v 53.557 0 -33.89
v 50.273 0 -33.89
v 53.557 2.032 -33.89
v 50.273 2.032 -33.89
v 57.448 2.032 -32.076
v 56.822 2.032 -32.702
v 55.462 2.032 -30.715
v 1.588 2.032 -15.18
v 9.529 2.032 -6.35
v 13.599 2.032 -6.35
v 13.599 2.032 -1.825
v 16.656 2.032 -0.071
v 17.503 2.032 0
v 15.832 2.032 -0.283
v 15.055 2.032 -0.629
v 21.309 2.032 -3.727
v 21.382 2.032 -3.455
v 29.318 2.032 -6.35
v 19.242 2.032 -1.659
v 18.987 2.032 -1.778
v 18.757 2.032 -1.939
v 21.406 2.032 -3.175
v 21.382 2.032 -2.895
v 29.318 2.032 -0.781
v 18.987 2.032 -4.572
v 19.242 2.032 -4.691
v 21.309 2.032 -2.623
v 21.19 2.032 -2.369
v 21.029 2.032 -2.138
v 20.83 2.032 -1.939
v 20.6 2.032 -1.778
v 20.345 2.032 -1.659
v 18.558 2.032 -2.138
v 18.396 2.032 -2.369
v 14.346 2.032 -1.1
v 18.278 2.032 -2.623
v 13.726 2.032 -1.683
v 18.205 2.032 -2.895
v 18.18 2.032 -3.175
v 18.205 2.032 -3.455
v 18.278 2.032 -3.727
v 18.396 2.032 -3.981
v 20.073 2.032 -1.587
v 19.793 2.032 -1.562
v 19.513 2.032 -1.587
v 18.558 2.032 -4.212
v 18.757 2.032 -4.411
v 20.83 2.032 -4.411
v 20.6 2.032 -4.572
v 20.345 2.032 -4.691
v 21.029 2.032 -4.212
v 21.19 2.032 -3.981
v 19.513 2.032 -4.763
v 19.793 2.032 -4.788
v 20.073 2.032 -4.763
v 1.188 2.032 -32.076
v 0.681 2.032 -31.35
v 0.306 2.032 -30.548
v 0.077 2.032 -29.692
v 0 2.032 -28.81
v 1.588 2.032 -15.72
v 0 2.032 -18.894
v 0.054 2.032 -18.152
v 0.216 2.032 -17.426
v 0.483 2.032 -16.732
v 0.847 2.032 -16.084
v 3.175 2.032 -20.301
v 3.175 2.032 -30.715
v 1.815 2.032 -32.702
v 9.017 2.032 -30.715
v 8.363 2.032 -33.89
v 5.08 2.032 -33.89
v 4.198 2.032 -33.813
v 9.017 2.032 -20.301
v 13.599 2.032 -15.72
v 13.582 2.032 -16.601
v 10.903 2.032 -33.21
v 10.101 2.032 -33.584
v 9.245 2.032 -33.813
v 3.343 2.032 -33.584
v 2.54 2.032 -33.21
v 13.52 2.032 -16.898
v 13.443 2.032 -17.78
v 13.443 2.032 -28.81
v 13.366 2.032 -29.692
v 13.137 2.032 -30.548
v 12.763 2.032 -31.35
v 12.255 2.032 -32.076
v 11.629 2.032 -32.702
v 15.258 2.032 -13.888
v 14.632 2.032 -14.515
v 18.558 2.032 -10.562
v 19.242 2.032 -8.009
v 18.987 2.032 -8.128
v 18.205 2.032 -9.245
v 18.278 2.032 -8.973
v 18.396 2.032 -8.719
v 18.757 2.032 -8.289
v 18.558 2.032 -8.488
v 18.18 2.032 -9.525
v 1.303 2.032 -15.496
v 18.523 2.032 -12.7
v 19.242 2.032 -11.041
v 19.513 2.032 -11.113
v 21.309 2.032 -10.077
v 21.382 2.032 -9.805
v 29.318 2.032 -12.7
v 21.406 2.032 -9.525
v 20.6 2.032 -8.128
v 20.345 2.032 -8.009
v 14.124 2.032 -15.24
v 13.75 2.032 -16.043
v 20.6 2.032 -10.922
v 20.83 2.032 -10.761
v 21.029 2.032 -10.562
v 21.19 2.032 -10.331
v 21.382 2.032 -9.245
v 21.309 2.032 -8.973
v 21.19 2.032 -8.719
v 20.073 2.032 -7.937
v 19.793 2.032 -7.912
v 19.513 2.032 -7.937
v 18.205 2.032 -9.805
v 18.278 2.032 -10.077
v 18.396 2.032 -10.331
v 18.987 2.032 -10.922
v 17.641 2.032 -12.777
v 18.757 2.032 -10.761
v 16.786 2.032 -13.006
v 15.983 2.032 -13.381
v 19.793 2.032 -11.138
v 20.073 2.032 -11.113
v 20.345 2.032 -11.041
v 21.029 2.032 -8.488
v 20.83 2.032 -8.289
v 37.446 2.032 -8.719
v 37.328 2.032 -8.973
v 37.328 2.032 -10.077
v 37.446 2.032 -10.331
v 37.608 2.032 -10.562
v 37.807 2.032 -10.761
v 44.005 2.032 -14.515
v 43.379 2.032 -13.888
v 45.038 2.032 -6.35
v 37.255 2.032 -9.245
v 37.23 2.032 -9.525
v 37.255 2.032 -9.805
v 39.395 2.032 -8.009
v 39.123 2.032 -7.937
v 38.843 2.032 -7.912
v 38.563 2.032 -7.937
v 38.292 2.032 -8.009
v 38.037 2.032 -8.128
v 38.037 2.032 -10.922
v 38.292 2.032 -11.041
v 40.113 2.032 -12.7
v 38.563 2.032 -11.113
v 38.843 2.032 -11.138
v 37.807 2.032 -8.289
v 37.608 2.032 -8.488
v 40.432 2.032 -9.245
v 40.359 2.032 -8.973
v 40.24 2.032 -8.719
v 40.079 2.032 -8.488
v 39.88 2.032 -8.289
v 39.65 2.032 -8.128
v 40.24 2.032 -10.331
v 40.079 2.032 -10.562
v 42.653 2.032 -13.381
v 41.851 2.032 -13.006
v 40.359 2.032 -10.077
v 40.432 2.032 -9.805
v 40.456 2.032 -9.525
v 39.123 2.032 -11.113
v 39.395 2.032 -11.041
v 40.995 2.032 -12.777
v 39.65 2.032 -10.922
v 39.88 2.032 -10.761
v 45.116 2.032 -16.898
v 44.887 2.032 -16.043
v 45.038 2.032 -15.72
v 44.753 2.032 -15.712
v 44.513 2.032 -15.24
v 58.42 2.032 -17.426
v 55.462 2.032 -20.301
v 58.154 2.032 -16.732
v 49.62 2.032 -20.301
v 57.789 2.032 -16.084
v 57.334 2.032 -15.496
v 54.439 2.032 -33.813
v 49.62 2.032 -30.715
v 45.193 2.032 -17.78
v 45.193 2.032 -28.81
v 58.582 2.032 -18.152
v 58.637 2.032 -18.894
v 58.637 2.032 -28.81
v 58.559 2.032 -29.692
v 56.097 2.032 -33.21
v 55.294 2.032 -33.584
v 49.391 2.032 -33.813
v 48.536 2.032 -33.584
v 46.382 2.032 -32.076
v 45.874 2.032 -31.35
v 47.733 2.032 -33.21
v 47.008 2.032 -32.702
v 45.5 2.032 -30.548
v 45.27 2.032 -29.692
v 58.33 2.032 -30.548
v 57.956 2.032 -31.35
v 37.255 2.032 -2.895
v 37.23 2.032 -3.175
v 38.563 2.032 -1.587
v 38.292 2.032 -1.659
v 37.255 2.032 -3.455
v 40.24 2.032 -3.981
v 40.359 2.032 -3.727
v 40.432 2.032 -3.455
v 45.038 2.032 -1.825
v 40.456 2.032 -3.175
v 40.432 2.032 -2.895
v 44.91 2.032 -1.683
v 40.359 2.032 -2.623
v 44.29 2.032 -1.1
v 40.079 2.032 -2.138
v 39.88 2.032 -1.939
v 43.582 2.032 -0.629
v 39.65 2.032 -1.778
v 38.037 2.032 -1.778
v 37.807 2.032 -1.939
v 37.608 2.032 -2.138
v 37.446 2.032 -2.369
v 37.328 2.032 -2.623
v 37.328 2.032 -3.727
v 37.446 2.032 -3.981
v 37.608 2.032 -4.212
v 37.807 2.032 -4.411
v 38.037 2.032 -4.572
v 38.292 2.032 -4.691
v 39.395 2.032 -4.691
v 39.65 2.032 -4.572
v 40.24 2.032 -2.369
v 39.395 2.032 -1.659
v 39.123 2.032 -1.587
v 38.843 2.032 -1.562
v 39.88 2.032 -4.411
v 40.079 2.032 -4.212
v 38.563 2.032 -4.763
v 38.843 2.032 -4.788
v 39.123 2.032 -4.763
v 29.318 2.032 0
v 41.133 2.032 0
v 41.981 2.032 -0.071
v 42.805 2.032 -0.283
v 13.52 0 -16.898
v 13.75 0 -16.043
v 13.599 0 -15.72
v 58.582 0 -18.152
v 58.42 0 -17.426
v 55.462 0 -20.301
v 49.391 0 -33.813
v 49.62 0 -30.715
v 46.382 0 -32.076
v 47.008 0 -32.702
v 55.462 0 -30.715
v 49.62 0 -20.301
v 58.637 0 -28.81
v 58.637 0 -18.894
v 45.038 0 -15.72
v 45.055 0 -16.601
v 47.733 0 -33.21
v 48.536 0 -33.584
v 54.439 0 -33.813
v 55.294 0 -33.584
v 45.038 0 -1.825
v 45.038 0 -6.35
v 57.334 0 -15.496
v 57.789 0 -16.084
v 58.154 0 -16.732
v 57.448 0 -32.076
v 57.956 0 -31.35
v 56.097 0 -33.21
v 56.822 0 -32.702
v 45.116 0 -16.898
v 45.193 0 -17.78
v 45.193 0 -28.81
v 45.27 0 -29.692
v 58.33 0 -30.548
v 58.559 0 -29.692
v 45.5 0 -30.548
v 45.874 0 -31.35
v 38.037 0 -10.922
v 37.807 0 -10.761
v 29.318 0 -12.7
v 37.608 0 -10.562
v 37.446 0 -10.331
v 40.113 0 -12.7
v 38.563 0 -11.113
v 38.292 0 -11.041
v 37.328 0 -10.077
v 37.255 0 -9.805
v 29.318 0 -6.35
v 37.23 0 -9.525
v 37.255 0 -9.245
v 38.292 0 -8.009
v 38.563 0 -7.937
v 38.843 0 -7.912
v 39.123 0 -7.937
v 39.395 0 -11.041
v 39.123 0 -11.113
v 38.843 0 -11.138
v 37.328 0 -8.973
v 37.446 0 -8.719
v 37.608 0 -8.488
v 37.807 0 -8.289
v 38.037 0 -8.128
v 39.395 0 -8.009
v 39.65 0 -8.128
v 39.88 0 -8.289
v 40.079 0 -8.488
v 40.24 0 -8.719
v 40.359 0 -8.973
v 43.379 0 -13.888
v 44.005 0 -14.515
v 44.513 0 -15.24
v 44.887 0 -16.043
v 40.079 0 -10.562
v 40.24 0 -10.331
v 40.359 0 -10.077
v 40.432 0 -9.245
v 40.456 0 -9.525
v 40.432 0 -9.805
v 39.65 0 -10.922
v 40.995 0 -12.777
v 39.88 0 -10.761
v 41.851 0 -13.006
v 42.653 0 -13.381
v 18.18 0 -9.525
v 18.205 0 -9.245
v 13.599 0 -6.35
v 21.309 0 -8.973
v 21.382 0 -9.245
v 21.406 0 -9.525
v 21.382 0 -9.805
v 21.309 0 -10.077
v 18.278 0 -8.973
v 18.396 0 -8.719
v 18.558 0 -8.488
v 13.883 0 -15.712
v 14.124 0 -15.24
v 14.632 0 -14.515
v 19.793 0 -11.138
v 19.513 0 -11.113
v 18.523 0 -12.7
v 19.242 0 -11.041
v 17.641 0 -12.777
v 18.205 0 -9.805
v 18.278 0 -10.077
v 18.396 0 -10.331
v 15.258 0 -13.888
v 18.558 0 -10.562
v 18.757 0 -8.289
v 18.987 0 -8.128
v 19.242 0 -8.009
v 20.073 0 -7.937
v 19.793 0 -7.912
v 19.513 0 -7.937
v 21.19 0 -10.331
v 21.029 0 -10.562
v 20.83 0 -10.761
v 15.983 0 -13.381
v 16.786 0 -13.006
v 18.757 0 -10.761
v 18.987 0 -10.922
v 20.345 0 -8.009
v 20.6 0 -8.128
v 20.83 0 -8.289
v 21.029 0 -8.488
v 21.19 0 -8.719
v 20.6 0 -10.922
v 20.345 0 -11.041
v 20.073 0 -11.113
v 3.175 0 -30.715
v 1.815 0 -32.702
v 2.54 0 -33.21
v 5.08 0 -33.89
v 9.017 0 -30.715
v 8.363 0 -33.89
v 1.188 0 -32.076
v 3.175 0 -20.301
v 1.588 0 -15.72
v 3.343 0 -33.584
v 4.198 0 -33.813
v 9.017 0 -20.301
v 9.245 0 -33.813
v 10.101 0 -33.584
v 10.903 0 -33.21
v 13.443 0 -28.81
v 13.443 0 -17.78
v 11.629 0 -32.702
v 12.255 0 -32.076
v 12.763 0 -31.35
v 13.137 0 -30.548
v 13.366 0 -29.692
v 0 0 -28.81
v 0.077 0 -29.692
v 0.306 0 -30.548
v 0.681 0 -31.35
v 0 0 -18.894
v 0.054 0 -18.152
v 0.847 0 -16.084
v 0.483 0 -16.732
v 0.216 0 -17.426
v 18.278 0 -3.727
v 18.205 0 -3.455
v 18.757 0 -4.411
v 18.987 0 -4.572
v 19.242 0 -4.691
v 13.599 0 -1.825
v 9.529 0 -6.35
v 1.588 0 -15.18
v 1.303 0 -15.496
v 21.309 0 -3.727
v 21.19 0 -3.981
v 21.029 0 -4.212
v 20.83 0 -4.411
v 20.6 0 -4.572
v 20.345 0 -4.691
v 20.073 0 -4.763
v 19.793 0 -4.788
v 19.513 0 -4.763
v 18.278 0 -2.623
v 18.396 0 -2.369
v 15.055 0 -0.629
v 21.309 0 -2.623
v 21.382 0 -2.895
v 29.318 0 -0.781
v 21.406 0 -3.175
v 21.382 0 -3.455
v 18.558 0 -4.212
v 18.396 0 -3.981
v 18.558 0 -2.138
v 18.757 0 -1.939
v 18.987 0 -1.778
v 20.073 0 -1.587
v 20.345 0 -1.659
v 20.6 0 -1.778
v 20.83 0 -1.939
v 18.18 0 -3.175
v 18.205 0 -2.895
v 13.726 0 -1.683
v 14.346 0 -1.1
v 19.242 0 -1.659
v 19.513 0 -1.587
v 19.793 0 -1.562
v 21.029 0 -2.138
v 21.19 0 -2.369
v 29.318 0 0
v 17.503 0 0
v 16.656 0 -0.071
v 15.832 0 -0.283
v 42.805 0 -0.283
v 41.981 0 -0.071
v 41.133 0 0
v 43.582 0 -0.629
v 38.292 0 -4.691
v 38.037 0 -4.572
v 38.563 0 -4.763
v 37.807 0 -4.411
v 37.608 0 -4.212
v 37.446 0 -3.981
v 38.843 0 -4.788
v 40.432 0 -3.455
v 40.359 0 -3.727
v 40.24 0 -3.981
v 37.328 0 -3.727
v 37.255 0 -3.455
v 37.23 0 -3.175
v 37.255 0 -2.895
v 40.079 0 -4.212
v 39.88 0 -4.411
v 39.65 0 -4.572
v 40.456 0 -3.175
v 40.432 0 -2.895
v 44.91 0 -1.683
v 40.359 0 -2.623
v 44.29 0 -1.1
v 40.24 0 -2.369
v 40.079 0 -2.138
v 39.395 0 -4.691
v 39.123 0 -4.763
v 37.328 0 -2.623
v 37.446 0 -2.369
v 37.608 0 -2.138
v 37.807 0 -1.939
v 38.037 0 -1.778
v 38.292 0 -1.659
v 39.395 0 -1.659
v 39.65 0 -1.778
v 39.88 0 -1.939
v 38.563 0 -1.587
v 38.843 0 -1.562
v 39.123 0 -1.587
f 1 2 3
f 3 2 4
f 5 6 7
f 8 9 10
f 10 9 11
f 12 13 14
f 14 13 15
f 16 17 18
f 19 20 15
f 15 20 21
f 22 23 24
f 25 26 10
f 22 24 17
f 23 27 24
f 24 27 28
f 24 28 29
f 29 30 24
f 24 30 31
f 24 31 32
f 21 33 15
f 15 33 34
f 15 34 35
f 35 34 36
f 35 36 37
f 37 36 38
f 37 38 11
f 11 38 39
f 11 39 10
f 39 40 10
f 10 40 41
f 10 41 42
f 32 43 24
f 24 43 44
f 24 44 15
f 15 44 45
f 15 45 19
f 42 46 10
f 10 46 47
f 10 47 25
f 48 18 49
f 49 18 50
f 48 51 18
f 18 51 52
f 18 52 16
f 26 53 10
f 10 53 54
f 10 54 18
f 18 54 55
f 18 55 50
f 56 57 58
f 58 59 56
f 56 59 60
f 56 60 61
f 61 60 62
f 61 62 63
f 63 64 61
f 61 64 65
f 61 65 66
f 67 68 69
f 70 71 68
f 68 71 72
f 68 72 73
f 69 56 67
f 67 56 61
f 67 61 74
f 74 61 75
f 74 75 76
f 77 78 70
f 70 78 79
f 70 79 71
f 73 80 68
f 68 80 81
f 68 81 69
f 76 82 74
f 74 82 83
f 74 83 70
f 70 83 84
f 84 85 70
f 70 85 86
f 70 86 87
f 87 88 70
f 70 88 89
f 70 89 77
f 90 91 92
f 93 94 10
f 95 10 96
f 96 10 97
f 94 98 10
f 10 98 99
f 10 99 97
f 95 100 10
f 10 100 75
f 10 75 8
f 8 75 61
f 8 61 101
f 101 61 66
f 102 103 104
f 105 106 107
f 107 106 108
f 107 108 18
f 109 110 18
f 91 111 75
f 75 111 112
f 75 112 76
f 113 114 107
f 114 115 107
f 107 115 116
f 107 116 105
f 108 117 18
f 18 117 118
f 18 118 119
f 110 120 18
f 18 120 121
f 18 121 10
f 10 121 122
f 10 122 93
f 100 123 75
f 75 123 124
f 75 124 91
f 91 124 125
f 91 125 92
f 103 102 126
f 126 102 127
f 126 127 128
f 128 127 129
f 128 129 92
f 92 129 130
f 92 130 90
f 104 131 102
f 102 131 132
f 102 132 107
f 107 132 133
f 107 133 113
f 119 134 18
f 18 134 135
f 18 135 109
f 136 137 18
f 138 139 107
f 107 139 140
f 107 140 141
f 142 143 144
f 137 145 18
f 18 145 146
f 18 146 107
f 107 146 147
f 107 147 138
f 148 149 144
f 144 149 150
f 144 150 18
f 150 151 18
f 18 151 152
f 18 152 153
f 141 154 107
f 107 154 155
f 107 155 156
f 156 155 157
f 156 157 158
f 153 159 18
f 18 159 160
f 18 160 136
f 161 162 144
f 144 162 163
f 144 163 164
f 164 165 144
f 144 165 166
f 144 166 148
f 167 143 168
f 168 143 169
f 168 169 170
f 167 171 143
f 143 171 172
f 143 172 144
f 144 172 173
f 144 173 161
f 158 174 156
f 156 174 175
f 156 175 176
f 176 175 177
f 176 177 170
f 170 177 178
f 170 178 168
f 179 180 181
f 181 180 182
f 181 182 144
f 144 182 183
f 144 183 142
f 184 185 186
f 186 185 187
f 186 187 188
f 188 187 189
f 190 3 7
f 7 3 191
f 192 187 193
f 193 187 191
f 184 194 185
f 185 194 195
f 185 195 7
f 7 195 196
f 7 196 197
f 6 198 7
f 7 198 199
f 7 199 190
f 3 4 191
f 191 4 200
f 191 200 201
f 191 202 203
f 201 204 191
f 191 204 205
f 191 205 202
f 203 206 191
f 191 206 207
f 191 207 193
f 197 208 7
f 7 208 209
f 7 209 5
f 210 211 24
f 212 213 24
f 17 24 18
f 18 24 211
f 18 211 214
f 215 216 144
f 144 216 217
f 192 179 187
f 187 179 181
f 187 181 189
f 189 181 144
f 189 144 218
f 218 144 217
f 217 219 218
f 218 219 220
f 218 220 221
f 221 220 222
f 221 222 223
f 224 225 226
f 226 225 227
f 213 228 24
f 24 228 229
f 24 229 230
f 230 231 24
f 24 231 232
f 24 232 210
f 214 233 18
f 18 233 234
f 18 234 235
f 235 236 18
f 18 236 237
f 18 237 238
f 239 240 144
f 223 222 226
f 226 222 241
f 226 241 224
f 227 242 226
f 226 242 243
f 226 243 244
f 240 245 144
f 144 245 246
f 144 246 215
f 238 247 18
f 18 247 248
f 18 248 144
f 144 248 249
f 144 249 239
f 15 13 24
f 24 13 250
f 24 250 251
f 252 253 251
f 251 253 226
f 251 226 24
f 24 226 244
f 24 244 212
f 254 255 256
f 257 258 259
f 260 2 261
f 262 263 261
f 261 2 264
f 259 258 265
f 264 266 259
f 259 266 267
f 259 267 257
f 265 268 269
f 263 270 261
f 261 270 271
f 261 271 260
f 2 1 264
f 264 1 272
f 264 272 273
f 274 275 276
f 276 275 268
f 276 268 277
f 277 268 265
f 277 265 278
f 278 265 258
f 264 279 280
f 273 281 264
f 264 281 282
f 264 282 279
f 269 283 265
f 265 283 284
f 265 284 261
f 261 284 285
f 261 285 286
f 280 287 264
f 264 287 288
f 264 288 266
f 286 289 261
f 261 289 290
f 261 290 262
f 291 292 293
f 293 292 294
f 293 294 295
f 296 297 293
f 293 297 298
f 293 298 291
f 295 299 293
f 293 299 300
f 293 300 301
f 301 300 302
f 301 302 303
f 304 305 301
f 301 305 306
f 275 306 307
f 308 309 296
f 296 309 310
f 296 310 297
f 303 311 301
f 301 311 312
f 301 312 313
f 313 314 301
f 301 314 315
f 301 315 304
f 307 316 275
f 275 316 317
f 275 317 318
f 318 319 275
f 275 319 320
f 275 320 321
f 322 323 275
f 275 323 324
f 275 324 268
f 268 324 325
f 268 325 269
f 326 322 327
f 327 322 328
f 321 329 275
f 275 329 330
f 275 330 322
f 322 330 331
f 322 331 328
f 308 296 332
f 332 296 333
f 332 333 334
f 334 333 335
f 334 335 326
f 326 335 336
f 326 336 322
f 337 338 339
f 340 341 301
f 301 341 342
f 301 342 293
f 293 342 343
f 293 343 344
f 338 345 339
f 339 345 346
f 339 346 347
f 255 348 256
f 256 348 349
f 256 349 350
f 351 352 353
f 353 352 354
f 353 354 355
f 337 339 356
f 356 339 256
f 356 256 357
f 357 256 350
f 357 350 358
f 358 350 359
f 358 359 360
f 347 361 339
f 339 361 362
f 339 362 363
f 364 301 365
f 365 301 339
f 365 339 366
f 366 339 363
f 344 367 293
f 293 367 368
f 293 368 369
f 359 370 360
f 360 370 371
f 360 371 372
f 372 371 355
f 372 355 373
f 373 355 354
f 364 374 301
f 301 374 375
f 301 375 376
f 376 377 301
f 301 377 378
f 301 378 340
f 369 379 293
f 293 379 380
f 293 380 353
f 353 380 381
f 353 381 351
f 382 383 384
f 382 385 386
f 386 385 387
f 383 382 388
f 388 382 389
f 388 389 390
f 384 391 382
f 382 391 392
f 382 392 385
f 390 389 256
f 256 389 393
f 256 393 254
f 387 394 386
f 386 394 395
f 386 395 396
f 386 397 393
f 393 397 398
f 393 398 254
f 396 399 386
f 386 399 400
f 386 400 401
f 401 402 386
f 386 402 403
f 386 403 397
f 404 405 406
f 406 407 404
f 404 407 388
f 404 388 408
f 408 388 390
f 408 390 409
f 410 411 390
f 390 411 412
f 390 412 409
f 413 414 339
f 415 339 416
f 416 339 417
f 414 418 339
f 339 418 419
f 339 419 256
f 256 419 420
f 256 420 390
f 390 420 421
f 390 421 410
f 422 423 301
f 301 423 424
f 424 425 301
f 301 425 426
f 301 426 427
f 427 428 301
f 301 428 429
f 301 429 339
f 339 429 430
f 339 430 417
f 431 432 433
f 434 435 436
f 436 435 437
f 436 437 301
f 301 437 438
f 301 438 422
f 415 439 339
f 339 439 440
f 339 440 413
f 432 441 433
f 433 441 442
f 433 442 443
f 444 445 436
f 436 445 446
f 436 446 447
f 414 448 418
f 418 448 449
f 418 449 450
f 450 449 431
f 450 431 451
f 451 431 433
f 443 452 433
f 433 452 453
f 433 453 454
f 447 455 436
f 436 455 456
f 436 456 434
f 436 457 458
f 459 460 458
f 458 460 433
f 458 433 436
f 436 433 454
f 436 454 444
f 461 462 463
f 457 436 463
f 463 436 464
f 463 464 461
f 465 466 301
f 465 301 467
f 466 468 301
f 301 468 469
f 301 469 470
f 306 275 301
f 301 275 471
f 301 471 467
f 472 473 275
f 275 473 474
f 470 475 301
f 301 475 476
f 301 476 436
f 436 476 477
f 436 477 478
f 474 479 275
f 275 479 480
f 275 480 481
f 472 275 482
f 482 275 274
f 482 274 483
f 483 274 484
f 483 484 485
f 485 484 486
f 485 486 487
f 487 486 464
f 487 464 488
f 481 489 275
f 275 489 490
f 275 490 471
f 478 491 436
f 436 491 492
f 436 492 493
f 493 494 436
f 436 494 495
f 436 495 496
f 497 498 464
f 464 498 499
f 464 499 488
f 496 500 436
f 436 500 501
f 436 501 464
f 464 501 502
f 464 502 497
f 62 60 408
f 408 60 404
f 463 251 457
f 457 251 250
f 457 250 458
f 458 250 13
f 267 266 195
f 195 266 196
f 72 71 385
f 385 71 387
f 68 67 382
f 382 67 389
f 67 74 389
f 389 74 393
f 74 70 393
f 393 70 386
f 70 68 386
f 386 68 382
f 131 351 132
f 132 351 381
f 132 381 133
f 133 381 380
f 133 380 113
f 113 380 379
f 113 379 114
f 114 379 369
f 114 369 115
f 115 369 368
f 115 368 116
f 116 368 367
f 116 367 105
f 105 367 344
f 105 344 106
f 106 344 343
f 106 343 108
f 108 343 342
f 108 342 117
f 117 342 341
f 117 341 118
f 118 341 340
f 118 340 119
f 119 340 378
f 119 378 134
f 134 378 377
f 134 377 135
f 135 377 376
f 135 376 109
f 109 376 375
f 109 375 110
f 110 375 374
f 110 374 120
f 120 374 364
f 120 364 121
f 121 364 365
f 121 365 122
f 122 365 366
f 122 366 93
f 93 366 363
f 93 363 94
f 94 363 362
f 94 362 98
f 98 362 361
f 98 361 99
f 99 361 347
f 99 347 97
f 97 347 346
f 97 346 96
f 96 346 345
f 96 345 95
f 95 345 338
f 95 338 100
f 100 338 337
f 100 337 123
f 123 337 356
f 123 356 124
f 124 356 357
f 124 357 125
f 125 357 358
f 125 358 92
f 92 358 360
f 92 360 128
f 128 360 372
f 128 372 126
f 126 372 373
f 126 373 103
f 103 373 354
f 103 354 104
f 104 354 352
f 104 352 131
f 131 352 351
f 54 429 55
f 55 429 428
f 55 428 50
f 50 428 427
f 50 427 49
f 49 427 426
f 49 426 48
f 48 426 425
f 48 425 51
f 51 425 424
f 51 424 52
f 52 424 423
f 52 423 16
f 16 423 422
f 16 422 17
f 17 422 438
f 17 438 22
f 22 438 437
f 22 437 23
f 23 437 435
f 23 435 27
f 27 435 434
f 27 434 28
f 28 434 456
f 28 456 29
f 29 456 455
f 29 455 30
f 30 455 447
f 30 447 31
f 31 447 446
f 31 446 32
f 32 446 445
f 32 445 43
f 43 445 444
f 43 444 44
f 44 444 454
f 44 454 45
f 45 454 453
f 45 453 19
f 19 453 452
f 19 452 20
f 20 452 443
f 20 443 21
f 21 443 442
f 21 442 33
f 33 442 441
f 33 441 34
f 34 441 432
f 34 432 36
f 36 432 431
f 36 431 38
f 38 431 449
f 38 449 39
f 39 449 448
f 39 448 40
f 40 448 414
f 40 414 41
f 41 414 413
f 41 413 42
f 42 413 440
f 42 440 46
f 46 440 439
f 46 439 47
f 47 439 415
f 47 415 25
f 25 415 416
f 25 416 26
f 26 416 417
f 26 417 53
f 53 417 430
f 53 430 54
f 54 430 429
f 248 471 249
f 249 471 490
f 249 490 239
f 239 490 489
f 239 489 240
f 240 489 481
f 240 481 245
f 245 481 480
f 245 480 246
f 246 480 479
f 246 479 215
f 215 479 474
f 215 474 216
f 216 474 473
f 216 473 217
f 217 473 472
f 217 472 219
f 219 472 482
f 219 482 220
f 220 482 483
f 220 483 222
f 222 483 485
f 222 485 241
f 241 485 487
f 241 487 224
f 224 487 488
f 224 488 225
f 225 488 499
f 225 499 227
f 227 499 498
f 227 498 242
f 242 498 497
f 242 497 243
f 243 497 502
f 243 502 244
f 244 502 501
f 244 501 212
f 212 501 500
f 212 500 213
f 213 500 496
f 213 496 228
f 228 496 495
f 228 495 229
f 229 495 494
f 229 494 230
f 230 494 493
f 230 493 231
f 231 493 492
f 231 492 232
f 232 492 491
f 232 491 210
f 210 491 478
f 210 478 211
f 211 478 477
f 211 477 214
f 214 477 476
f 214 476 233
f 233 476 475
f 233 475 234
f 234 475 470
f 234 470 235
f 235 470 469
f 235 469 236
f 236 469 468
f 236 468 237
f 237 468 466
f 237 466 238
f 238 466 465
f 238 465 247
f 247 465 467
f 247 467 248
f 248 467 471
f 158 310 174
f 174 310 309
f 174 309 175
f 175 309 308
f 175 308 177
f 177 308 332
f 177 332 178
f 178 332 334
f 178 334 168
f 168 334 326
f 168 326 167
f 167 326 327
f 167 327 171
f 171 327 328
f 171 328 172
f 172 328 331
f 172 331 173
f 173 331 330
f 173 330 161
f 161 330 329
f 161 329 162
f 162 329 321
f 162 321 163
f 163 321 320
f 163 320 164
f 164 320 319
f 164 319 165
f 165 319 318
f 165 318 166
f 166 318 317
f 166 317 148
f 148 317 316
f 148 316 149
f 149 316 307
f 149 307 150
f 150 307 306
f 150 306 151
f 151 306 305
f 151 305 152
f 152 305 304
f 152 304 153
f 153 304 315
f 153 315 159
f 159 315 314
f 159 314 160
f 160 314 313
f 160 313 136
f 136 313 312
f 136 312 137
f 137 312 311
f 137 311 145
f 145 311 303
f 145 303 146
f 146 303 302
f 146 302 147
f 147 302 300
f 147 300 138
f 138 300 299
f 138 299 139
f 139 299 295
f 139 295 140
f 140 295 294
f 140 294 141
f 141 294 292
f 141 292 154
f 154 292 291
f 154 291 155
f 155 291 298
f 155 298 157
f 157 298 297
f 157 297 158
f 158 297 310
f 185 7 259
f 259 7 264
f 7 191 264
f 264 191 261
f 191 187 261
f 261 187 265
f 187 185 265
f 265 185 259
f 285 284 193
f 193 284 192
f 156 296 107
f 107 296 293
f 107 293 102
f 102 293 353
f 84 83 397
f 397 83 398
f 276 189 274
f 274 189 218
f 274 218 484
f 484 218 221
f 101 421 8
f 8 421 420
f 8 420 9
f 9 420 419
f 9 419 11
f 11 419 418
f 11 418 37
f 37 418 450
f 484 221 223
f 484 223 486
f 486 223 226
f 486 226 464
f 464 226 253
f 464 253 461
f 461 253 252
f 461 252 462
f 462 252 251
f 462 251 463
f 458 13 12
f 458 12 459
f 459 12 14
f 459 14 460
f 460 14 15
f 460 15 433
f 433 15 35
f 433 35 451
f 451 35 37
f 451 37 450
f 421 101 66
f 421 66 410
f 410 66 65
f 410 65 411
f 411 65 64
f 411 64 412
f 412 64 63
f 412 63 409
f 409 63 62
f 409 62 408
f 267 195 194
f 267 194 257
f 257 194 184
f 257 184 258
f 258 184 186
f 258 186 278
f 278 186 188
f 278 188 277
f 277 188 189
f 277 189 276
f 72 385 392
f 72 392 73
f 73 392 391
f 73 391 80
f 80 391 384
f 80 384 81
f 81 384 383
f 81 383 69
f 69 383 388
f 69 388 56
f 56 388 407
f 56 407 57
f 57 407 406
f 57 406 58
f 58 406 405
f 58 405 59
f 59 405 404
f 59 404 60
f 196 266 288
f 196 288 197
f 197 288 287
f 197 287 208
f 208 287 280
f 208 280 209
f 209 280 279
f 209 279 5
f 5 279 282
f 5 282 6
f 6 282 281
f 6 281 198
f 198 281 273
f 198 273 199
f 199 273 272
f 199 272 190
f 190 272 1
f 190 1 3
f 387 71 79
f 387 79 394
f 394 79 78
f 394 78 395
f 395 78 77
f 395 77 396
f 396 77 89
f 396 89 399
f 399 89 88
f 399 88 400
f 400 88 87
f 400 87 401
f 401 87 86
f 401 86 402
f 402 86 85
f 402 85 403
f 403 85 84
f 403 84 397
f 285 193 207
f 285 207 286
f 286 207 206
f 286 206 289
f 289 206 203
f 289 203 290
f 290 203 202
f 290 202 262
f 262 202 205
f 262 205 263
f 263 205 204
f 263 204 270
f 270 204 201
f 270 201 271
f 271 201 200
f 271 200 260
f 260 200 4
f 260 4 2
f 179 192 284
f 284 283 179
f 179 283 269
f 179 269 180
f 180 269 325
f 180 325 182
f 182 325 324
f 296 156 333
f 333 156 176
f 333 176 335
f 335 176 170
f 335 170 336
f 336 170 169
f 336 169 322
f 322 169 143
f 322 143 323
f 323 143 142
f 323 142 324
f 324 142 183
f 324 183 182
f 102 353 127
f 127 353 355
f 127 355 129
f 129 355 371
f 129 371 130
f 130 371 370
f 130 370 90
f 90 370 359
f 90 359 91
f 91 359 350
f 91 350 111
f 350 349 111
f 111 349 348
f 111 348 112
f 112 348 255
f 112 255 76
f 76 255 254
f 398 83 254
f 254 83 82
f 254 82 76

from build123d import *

# Parameters (mm, degrees)
SKETCH1_W           = 58.636614691
SKETCH1_H           = 33.890307345
SKETCH1_R           = 1.6129
SKETCH1_W_2         = 5.842
SKETCH1_H_2         = 10.414
BOSS_EXTRUDE1_DEPTH = 2.032
SKETCH2_W           = 31.75
SKETCH2_H           = 21.190307345
CUT_EXTRUDE1_DEPTH  = 68.756435402
FILLET1_R           = 5.08


with BuildPart() as part:
    # Sketch1 → Boss-Extrude1 (new body)
    with BuildSketch(Plane(origin=(0, 0, 0), x_dir=(1, 0, 0), z_dir=(0, 1, 0))):
        with Locations((29.318307346, 16.945153673)):
            Rectangle(SKETCH1_W, SKETCH1_H)
        with Locations(Location((19.793307345, 9.525, 0), (0, 0, 270))):
            Circle(SKETCH1_R, mode=Mode.SUBTRACT)
        with Locations(Location((19.793307345, 3.175, 0), (0, 0, 270))):
            Circle(SKETCH1_R, mode=Mode.SUBTRACT)
        with Locations(Location((38.843307345, 3.175, 0), (0, 0, 90))):
            Circle(SKETCH1_R, mode=Mode.SUBTRACT)
        with Locations(Location((38.843307345, 9.525, 0), (0, 0, 90))):
            Circle(SKETCH1_R, mode=Mode.SUBTRACT)
        with Locations((6.096, 25.508307345)):
            Rectangle(SKETCH1_W_2, SKETCH1_H_2, mode=Mode.SUBTRACT)
        with Locations((52.540614691, 25.508307345)):
            Rectangle(SKETCH1_W_2, SKETCH1_H_2, mode=Mode.SUBTRACT)
    extrude(amount=BOSS_EXTRUDE1_DEPTH)

    # Sketch2 → Cut-Extrude1 (cut, through all)
    with BuildSketch(Plane(origin=(0, 2.032, 0), x_dir=(1, 0, 0), z_dir=(0, 1, 0))):
        with Locations((29.318307345, 23.295153673)):
            Rectangle(SKETCH2_W, SKETCH2_H)
        Polygon((0, 16.945153673), (15.24, 0), (0, 0), align=None)
        Polygon((43.396614691, 0), (58.636614691, 0), (58.636614691, 16.945153673), align=None)
    extrude(amount=-CUT_EXTRUDE1_DEPTH, mode=Mode.SUBTRACT)

    # Fillet1
    fillet1_edges = [part.edges().sort_by_distance(p)[0] for p in [
        (43.396614691, 1.016, 0),
        (58.636614691, 1.016, -16.945153673),
        (0, 1.016, -16.945153673),
        (15.24, 1.016, 0),
        (0, 1.016, -33.890307345),
        (58.636614691, 1.016, -33.890307345),
        (13.443307345, 1.016, -33.890307345),
        (45.193307345, 1.016, -33.890307345),
        (45.193307345, 1.016, -12.7),
        (13.443307345, 1.016, -12.7),
    ]]
    fillet(fillet1_edges, radius=FILLET1_R)


solid = part.part
